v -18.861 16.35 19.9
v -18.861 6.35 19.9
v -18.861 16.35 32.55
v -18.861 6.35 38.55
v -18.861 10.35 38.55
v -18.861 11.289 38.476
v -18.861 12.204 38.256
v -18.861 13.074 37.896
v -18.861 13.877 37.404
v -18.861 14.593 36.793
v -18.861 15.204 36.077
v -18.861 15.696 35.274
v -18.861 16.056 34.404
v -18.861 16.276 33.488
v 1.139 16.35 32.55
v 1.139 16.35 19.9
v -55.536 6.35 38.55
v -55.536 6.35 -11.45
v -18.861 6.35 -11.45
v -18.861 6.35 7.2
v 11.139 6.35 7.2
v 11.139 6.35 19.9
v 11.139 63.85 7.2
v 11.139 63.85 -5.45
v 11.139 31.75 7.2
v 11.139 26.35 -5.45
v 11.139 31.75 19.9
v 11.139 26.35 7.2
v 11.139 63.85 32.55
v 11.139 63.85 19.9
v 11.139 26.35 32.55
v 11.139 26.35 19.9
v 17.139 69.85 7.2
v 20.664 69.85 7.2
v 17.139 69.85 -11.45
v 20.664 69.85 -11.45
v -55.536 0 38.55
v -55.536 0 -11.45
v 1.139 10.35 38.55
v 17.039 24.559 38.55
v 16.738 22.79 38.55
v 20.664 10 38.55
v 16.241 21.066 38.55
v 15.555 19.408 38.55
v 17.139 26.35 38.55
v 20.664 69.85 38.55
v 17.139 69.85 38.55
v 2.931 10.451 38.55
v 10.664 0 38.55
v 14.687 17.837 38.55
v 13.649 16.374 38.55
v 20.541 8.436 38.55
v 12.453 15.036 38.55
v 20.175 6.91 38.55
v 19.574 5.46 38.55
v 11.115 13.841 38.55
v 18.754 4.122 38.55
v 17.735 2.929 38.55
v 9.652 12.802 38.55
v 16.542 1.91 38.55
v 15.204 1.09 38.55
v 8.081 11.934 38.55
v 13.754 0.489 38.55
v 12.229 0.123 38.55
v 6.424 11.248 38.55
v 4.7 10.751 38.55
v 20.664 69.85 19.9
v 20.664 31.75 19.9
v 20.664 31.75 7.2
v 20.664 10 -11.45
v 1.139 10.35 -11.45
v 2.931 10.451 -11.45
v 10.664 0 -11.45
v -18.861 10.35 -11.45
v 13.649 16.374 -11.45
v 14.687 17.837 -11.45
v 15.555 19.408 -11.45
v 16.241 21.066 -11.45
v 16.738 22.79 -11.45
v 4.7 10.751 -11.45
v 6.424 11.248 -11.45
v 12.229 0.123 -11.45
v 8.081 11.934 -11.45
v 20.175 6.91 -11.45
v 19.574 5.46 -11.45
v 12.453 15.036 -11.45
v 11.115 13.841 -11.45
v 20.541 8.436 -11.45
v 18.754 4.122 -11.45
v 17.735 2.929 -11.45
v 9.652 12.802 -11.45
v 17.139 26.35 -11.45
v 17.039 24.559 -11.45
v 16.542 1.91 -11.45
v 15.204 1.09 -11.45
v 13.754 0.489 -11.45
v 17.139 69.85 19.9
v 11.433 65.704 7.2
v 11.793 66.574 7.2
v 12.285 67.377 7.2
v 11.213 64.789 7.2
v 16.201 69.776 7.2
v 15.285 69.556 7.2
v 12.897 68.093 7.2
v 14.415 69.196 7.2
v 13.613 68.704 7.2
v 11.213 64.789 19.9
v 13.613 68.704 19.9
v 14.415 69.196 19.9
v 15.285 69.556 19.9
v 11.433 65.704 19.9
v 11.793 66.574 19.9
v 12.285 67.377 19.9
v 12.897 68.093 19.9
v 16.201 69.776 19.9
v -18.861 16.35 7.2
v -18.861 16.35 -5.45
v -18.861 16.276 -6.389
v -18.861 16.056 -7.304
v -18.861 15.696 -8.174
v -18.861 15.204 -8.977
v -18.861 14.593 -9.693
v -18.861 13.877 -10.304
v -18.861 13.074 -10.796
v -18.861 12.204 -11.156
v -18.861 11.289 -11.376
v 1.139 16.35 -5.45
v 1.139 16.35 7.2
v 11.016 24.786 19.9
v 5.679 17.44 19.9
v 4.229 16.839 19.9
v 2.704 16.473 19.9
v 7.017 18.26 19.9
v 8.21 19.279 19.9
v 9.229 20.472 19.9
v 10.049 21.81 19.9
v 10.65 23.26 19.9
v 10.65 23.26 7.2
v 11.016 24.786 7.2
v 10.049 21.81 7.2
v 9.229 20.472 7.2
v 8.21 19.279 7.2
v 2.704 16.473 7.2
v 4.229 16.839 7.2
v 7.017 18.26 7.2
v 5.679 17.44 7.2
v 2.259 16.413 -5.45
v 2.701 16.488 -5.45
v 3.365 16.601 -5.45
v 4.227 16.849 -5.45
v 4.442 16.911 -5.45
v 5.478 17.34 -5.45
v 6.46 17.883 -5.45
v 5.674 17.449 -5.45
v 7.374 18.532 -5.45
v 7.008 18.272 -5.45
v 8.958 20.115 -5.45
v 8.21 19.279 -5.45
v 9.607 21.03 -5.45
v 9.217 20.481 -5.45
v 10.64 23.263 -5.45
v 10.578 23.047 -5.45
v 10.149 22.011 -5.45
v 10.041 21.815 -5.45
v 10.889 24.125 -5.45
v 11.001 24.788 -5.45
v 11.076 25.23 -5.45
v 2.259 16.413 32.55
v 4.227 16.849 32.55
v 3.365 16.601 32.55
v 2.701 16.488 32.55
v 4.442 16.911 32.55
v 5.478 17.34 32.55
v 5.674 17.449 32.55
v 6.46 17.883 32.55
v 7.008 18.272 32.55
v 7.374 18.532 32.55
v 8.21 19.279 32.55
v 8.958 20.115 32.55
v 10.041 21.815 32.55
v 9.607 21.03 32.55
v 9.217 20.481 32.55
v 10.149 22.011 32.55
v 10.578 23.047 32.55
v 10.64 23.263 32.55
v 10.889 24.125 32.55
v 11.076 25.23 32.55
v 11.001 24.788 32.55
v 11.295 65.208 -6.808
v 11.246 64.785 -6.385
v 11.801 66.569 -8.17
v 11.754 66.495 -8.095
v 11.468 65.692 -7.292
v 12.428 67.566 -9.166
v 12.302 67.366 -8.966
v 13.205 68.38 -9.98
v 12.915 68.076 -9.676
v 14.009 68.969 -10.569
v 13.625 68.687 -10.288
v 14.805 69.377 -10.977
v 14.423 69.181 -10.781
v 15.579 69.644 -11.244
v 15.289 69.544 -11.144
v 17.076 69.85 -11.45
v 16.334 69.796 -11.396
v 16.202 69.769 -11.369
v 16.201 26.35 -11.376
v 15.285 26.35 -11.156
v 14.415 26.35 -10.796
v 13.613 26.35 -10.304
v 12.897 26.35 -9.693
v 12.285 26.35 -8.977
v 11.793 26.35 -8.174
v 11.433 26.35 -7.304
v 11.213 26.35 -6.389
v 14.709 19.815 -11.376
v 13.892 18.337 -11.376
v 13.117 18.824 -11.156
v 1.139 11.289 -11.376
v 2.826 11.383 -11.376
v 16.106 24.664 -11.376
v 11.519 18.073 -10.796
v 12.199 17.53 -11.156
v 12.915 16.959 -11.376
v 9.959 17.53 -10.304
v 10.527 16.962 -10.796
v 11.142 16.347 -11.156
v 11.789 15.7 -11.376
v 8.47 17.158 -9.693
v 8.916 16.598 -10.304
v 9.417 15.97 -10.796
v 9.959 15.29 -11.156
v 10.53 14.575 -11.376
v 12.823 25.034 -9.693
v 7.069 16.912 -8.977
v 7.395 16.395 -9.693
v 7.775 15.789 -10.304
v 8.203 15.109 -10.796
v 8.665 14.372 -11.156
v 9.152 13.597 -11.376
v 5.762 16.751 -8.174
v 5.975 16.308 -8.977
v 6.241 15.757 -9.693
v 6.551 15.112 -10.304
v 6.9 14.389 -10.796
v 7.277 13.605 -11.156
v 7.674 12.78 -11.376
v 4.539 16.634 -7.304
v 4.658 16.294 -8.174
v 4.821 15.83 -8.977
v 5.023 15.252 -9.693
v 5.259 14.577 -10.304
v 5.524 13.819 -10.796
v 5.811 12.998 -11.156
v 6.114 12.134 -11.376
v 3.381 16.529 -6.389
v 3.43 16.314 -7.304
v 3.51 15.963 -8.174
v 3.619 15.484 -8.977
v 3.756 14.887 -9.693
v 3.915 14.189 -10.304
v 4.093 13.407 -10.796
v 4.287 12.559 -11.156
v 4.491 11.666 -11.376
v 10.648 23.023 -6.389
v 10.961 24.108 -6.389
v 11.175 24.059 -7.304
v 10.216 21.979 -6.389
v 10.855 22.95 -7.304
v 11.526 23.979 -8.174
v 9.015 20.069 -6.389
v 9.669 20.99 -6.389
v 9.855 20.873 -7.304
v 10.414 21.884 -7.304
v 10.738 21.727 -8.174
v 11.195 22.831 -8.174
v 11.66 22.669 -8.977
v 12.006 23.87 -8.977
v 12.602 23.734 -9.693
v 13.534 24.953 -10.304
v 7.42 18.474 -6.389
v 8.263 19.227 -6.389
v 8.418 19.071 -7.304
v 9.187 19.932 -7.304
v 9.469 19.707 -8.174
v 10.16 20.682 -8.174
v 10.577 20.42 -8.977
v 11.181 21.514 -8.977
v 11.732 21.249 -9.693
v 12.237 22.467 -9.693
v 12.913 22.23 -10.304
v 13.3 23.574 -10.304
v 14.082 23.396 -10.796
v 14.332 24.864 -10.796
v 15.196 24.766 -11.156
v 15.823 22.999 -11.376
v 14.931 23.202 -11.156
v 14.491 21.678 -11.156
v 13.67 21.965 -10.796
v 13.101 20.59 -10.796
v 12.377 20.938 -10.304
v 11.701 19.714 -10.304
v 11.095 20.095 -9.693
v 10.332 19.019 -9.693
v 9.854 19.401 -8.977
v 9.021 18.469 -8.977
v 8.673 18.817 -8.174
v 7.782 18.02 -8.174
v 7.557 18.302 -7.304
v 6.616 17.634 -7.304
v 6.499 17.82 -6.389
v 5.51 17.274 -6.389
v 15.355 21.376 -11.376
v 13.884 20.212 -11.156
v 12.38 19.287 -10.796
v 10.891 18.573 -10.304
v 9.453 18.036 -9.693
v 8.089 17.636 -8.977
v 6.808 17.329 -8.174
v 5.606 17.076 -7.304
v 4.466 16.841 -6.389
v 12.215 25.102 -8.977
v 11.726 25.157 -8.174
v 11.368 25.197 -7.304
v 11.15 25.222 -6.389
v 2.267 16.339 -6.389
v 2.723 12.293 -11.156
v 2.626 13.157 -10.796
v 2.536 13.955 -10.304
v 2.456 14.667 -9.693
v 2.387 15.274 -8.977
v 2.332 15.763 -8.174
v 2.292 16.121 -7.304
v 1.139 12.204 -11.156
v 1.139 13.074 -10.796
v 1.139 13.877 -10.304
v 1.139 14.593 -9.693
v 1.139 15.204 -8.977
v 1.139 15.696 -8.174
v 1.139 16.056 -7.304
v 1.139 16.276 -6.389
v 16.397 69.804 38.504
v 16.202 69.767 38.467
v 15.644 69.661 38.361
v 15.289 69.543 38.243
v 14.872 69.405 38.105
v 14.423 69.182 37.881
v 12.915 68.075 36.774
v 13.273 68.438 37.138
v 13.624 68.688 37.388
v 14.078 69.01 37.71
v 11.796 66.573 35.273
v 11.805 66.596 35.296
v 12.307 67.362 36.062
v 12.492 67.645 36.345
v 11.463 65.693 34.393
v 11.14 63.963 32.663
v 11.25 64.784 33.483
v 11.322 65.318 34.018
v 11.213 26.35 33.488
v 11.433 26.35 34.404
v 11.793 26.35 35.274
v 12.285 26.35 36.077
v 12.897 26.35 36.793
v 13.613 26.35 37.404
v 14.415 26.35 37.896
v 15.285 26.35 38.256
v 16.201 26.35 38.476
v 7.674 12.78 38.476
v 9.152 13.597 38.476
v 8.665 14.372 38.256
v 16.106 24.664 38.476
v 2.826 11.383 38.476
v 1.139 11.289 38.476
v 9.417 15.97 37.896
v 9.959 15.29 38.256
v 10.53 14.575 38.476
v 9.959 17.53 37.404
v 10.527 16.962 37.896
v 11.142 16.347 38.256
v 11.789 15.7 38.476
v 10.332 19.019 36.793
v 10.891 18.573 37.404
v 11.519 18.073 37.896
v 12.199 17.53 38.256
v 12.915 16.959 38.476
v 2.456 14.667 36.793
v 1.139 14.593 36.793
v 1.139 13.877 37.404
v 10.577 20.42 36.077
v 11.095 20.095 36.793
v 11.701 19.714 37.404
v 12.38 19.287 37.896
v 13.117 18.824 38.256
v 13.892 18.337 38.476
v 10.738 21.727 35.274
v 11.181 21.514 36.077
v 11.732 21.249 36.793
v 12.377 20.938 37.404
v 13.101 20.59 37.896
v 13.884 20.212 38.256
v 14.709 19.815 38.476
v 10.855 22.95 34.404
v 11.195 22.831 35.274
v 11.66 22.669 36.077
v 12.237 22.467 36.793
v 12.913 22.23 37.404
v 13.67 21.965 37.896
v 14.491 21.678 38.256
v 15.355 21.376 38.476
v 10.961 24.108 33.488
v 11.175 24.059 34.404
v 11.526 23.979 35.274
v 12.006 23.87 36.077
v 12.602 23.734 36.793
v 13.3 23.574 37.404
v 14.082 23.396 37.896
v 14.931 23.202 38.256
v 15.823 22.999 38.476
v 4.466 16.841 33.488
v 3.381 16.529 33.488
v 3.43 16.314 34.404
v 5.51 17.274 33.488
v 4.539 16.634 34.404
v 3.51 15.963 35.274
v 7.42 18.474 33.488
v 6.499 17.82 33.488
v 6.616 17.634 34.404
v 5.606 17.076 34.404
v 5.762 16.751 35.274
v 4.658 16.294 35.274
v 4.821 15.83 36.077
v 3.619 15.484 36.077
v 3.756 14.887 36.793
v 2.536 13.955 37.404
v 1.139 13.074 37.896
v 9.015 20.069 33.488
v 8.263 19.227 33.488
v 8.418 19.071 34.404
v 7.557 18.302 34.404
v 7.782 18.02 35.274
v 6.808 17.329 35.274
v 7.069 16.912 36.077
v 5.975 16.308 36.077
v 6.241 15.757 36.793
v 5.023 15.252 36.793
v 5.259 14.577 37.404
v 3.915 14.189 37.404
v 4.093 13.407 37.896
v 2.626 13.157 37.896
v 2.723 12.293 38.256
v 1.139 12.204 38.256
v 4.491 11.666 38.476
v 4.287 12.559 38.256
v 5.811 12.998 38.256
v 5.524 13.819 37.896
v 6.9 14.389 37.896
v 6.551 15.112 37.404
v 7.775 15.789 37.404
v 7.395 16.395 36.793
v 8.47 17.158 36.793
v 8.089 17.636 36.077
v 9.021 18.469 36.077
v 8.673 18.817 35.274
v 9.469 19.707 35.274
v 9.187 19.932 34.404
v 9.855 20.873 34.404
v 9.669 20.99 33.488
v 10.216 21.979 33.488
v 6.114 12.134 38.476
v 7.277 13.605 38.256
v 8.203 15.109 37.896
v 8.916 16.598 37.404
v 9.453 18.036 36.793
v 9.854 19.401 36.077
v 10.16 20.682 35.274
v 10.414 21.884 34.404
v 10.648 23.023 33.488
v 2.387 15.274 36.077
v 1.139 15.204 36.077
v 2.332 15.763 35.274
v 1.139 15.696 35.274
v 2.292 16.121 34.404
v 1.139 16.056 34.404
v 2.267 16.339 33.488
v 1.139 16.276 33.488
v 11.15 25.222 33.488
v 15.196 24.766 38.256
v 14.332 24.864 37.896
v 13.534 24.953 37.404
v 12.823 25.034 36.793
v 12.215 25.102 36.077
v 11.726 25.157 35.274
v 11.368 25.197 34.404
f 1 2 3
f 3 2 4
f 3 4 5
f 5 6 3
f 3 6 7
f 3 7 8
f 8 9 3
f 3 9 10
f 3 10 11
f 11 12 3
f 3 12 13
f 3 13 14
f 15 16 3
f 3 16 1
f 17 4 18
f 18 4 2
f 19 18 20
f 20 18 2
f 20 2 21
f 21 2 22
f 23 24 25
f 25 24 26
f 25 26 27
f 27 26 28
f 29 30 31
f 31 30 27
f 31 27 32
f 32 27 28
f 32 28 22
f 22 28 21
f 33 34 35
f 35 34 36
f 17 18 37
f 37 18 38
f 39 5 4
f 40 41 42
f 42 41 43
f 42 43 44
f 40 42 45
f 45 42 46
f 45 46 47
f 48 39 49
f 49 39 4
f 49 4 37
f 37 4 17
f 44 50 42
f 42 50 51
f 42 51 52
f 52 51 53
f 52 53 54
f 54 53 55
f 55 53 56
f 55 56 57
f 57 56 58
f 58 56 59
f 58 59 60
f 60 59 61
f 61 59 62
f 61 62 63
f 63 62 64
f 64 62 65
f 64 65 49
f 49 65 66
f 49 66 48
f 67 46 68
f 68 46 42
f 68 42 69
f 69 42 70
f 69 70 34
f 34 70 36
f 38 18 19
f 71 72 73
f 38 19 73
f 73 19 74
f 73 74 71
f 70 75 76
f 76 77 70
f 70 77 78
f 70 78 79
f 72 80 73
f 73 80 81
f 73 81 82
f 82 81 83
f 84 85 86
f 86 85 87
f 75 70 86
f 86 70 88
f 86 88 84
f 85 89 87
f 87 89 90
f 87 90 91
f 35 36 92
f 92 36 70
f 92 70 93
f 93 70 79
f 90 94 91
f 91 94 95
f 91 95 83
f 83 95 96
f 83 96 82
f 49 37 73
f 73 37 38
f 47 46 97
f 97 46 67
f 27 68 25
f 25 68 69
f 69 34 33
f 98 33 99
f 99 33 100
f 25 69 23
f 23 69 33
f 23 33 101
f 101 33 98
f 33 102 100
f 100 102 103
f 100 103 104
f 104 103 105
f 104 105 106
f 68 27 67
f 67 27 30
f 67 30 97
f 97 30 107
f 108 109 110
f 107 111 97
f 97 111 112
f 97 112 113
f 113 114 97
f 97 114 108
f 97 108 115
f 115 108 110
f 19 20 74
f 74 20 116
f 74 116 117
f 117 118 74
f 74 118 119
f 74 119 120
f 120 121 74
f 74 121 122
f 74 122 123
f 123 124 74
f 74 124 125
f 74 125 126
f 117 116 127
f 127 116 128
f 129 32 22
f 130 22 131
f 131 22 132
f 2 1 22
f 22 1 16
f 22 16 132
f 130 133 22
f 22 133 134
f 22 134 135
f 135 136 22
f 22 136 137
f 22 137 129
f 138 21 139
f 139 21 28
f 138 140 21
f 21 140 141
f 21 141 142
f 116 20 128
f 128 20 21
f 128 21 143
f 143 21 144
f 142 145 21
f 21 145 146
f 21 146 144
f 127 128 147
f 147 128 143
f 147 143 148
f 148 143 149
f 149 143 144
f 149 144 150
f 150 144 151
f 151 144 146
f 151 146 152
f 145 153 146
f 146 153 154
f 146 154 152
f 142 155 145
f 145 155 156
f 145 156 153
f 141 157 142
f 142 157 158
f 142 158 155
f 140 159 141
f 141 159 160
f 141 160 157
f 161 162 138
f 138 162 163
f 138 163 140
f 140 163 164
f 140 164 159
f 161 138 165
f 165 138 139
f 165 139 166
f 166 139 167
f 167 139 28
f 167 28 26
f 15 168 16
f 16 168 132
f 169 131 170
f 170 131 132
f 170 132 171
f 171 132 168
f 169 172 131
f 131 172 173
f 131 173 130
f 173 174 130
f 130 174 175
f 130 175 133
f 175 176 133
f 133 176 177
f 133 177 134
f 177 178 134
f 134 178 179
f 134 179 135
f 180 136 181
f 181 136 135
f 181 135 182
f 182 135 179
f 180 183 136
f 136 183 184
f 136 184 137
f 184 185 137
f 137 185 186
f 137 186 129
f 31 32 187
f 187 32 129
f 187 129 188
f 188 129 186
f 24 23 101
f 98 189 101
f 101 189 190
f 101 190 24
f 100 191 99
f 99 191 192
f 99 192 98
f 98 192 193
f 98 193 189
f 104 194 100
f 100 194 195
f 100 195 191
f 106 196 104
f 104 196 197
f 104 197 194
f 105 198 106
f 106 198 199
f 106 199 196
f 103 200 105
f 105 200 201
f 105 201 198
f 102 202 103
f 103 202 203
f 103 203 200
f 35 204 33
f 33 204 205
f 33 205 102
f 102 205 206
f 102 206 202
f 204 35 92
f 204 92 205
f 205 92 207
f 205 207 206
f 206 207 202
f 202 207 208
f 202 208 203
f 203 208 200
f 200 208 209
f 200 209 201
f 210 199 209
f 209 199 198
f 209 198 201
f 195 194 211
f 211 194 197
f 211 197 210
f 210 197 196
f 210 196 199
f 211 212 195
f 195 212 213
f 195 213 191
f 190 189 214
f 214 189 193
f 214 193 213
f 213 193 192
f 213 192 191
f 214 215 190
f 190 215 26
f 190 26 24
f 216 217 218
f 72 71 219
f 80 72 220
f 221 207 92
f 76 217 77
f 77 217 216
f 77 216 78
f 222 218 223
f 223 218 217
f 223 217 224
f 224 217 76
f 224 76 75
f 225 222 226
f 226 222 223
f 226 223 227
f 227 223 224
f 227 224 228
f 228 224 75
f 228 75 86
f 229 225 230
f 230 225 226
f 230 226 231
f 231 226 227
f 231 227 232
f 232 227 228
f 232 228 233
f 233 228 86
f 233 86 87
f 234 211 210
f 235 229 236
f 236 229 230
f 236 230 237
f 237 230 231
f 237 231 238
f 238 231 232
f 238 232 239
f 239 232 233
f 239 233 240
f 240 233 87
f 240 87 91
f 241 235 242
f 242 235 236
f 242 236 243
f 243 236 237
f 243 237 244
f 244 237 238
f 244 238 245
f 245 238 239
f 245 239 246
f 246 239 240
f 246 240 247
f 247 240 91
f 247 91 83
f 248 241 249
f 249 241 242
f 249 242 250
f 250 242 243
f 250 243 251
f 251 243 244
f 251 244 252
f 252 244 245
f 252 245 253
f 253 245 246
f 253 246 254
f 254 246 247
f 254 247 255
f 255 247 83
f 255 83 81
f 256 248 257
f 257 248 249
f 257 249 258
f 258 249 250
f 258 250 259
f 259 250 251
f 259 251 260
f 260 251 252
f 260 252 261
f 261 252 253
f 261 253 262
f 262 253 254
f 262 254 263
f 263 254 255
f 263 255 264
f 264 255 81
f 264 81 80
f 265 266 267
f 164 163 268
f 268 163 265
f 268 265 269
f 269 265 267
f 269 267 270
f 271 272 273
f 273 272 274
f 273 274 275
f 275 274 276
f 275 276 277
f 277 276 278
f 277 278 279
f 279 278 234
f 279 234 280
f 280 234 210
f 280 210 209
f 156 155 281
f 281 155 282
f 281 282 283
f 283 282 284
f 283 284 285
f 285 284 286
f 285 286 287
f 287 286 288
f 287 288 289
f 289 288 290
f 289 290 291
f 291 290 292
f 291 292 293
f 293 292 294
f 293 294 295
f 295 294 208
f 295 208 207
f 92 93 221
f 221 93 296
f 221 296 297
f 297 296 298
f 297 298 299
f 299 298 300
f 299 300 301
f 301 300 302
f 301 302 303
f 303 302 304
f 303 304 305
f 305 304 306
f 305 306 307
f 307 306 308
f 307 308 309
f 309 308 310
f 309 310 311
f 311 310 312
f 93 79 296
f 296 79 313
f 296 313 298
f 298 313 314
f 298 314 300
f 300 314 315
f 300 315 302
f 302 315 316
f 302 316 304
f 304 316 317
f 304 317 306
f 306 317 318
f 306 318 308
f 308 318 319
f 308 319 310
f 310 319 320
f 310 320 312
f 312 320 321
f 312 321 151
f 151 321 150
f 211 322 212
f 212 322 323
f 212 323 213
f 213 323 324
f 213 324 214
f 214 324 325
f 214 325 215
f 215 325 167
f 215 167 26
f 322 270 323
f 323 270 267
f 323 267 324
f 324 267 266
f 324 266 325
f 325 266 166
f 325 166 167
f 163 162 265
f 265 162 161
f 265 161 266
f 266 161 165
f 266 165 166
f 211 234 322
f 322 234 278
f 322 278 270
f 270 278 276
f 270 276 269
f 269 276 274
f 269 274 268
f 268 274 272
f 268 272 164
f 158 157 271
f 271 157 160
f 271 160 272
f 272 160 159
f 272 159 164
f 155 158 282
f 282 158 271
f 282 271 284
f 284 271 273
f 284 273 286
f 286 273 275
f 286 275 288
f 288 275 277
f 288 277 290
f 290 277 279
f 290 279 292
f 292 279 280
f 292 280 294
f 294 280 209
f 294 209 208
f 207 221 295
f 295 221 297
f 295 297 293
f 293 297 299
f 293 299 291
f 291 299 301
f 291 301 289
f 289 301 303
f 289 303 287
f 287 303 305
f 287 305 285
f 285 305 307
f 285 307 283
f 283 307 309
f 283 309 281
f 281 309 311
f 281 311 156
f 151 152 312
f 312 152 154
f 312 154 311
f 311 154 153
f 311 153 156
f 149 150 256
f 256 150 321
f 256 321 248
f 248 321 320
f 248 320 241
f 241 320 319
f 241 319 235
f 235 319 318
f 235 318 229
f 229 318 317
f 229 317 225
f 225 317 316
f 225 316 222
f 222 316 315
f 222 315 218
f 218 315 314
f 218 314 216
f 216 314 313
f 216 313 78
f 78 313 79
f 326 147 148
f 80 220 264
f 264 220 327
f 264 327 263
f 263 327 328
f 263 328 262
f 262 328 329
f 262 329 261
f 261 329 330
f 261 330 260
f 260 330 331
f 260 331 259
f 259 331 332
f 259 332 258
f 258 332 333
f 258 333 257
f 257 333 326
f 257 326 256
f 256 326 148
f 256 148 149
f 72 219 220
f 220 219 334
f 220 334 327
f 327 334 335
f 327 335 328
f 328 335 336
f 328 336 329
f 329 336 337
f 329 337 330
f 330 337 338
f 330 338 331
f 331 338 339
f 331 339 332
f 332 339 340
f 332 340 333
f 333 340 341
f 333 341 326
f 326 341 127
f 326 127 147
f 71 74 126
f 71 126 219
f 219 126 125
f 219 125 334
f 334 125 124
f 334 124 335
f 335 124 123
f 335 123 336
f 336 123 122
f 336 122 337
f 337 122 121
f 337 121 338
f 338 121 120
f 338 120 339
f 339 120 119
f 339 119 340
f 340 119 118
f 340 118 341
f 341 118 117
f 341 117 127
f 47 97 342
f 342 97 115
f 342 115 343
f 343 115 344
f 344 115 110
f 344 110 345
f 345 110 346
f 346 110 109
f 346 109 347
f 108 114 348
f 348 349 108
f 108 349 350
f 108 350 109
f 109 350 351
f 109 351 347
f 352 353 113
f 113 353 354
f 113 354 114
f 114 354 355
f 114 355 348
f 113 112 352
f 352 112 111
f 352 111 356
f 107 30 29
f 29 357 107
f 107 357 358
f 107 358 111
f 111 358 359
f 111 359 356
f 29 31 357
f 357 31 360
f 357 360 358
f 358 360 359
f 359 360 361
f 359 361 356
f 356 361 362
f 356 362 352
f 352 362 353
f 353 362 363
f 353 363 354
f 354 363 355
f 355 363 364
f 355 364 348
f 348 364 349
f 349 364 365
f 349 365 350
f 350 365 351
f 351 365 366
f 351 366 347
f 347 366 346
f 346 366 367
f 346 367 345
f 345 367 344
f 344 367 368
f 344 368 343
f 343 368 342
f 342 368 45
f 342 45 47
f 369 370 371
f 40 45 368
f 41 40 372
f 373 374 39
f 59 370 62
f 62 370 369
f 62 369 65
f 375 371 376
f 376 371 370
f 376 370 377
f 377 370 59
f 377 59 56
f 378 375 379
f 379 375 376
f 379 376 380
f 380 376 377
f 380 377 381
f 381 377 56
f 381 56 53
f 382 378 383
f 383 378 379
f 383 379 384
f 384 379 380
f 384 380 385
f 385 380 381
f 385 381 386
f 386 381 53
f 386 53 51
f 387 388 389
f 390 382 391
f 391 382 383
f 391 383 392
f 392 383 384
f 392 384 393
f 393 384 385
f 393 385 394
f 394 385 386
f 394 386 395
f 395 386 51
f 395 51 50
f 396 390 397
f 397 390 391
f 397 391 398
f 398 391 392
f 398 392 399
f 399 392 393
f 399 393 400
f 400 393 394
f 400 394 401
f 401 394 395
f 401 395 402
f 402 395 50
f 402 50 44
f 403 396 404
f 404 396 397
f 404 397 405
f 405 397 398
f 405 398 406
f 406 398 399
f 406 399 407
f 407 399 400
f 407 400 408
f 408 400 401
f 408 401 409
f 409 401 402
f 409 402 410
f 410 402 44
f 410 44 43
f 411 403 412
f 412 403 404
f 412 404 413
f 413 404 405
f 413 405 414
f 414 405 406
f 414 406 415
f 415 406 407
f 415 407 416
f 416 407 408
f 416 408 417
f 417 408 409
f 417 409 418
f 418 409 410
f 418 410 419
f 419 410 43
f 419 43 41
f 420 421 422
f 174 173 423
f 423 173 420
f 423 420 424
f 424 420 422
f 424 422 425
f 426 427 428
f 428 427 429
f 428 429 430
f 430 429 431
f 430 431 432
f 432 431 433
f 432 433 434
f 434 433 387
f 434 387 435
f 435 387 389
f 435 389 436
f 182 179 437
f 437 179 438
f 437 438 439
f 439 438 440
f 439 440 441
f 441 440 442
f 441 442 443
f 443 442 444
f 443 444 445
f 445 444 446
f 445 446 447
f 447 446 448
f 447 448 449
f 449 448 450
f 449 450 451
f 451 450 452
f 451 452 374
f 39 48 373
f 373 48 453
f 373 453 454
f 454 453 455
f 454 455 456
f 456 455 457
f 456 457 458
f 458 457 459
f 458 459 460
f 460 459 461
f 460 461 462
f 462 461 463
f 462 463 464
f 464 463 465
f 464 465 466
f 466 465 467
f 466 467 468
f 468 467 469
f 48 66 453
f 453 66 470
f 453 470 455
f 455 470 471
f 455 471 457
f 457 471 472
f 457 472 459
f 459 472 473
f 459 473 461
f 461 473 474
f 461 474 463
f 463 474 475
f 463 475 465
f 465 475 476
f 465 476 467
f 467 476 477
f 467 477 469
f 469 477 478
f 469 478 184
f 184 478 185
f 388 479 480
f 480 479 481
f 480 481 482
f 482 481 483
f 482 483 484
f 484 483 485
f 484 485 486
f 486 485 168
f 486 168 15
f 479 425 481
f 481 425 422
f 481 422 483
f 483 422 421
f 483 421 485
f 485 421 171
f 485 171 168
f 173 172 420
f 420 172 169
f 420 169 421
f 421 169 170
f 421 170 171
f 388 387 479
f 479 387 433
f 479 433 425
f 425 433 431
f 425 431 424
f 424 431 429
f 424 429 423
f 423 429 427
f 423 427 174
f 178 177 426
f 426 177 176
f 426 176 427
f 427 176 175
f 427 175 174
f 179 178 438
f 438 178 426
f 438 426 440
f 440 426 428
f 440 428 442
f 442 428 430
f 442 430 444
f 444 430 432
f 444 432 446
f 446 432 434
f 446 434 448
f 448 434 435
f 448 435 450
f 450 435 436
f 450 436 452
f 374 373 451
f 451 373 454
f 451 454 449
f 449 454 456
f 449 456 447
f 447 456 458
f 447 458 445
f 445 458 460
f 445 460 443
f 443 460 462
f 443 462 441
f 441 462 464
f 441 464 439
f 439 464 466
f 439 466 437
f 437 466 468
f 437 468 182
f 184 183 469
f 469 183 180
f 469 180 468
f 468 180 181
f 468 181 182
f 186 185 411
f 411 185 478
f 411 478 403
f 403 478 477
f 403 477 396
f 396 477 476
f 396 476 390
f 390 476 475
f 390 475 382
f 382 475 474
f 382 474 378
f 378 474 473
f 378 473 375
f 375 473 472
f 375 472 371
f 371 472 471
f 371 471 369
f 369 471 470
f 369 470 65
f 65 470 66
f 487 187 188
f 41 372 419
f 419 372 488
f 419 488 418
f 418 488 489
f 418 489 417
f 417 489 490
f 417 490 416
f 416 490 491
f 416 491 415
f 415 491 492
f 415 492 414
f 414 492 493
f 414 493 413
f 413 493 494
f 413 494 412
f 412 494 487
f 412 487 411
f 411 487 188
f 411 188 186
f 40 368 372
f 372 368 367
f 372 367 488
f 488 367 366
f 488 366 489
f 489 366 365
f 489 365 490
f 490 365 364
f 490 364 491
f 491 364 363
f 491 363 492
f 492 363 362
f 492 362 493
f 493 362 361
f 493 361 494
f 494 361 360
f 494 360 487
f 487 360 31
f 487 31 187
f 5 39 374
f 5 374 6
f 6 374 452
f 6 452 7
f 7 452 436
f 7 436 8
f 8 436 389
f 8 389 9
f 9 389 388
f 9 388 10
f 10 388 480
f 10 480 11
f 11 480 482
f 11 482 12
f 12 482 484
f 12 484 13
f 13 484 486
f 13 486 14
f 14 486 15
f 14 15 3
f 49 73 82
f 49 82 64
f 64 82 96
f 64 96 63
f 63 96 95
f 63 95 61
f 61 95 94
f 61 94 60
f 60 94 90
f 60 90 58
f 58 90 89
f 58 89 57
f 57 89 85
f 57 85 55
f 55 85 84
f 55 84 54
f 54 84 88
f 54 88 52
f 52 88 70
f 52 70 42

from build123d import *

# Parameters (mm, degrees)
SKETCH1_W           = 76.2
SKETCH1_H           = 50
BOSS_EXTRUDE1_DEPTH = 6.35
SKETCH2_W           = 9.525
SKETCH2_H           = 50
BOSS_EXTRUDE2_DEPTH = 63.5
SKETCH3_W           = 12.7
SKETCH3_H           = 38.1
CUT_EXTRUDE1_DEPTH  = 63.5
SKETCH4_W           = 30
SKETCH4_H           = 50
BOSS_EXTRUDE3_DEPTH = 10
SKETCH5_W           = 30
SKETCH5_H           = 12.7
CUT_EXTRUDE2_DEPTH  = 10
FILLET2_R           = 10
FILLET3_R           = 6
FILLET4_R           = 10


with BuildPart() as part:
    # Sketch1 → Boss-Extrude1 (new body)
    with BuildSketch(Plane(origin=(0, 0, 0), x_dir=(1, 0, 0), z_dir=(0, 1, 0))):
        with Locations((-17.435704212, -13.54987632)):
            Rectangle(SKETCH1_W, SKETCH1_H)
    extrude(amount=BOSS_EXTRUDE1_DEPTH)

    # Sketch2 → Boss-Extrude2 (add)
    with BuildSketch(Plane(origin=(0, 6.35, 0), x_dir=(1, 0, 0), z_dir=(0, 1, 0))):
        with Locations((15.901795788, -13.54987632)):
            Rectangle(SKETCH2_W, SKETCH2_H)
    extrude(amount=BOSS_EXTRUDE2_DEPTH)

    # Sketch3 → Cut-Extrude1 (cut)
    with BuildSketch(Plane.ZY.offset(-11.139295788)):
        with Locations((13.54987632, 50.8)):
            Rectangle(SKETCH3_W, SKETCH3_H)
    extrude(amount=-CUT_EXTRUDE1_DEPTH, mode=Mode.SUBTRACT)

    # Sketch4 → Boss-Extrude3 (add)
    with BuildSketch(Plane(origin=(0, 6.35, 0), x_dir=(1, 0, 0), z_dir=(0, 1, 0))):
        with Locations((-3.860704212, -13.54987632)):
            Rectangle(SKETCH4_W, SKETCH4_H)
    extrude(amount=BOSS_EXTRUDE3_DEPTH)

    # Sketch5 → Cut-Extrude2 (cut)
    with BuildSketch(Plane(origin=(0, 16.35, 0), x_dir=(1, 0, 0), z_dir=(0, 1, 0))):
        with Locations((-3.860704212, -13.54987632)):
            Rectangle(SKETCH5_W, SKETCH5_H)
    extrude(amount=-CUT_EXTRUDE2_DEPTH, mode=Mode.SUBTRACT)

    # Fillet2
    fillet2_edges = [part.edges().sort_by_distance(p)[0] for p in [
        (11.139295788, 16.35, 29.22487632),
        (11.139295788, 16.35, -2.12512368),
    ]]
    fillet(fillet2_edges, radius=FILLET2_R)

    # Fillet3
    fillet3_edges = [part.edges().sort_by_distance(p)[0] for p in [
        (11.139295788, 48.1, -11.45012368),
        (11.139295788, 48.1, 38.54987632),
        (11.139295788, 69.85, -2.12512368),
        (11.139295788, 69.85, 29.22487632),
        (-8.860704212, 16.35, 38.54987632),
        (-8.860704212, 16.35, -11.45012368),
        (8.210363599, 19.278932188, -11.45012368),
        (8.210363599, 19.278932188, 38.54987632),
    ]]
    fillet(fillet3_edges, radius=FILLET3_R)

    # Fillet4
    fillet4_edges = [part.edges().sort_by_distance(p)[0] for p in [
        (20.664295788, 0, 13.54987632),
    ]]
    fillet(fillet4_edges, radius=FILLET4_R)


solid = part.part
